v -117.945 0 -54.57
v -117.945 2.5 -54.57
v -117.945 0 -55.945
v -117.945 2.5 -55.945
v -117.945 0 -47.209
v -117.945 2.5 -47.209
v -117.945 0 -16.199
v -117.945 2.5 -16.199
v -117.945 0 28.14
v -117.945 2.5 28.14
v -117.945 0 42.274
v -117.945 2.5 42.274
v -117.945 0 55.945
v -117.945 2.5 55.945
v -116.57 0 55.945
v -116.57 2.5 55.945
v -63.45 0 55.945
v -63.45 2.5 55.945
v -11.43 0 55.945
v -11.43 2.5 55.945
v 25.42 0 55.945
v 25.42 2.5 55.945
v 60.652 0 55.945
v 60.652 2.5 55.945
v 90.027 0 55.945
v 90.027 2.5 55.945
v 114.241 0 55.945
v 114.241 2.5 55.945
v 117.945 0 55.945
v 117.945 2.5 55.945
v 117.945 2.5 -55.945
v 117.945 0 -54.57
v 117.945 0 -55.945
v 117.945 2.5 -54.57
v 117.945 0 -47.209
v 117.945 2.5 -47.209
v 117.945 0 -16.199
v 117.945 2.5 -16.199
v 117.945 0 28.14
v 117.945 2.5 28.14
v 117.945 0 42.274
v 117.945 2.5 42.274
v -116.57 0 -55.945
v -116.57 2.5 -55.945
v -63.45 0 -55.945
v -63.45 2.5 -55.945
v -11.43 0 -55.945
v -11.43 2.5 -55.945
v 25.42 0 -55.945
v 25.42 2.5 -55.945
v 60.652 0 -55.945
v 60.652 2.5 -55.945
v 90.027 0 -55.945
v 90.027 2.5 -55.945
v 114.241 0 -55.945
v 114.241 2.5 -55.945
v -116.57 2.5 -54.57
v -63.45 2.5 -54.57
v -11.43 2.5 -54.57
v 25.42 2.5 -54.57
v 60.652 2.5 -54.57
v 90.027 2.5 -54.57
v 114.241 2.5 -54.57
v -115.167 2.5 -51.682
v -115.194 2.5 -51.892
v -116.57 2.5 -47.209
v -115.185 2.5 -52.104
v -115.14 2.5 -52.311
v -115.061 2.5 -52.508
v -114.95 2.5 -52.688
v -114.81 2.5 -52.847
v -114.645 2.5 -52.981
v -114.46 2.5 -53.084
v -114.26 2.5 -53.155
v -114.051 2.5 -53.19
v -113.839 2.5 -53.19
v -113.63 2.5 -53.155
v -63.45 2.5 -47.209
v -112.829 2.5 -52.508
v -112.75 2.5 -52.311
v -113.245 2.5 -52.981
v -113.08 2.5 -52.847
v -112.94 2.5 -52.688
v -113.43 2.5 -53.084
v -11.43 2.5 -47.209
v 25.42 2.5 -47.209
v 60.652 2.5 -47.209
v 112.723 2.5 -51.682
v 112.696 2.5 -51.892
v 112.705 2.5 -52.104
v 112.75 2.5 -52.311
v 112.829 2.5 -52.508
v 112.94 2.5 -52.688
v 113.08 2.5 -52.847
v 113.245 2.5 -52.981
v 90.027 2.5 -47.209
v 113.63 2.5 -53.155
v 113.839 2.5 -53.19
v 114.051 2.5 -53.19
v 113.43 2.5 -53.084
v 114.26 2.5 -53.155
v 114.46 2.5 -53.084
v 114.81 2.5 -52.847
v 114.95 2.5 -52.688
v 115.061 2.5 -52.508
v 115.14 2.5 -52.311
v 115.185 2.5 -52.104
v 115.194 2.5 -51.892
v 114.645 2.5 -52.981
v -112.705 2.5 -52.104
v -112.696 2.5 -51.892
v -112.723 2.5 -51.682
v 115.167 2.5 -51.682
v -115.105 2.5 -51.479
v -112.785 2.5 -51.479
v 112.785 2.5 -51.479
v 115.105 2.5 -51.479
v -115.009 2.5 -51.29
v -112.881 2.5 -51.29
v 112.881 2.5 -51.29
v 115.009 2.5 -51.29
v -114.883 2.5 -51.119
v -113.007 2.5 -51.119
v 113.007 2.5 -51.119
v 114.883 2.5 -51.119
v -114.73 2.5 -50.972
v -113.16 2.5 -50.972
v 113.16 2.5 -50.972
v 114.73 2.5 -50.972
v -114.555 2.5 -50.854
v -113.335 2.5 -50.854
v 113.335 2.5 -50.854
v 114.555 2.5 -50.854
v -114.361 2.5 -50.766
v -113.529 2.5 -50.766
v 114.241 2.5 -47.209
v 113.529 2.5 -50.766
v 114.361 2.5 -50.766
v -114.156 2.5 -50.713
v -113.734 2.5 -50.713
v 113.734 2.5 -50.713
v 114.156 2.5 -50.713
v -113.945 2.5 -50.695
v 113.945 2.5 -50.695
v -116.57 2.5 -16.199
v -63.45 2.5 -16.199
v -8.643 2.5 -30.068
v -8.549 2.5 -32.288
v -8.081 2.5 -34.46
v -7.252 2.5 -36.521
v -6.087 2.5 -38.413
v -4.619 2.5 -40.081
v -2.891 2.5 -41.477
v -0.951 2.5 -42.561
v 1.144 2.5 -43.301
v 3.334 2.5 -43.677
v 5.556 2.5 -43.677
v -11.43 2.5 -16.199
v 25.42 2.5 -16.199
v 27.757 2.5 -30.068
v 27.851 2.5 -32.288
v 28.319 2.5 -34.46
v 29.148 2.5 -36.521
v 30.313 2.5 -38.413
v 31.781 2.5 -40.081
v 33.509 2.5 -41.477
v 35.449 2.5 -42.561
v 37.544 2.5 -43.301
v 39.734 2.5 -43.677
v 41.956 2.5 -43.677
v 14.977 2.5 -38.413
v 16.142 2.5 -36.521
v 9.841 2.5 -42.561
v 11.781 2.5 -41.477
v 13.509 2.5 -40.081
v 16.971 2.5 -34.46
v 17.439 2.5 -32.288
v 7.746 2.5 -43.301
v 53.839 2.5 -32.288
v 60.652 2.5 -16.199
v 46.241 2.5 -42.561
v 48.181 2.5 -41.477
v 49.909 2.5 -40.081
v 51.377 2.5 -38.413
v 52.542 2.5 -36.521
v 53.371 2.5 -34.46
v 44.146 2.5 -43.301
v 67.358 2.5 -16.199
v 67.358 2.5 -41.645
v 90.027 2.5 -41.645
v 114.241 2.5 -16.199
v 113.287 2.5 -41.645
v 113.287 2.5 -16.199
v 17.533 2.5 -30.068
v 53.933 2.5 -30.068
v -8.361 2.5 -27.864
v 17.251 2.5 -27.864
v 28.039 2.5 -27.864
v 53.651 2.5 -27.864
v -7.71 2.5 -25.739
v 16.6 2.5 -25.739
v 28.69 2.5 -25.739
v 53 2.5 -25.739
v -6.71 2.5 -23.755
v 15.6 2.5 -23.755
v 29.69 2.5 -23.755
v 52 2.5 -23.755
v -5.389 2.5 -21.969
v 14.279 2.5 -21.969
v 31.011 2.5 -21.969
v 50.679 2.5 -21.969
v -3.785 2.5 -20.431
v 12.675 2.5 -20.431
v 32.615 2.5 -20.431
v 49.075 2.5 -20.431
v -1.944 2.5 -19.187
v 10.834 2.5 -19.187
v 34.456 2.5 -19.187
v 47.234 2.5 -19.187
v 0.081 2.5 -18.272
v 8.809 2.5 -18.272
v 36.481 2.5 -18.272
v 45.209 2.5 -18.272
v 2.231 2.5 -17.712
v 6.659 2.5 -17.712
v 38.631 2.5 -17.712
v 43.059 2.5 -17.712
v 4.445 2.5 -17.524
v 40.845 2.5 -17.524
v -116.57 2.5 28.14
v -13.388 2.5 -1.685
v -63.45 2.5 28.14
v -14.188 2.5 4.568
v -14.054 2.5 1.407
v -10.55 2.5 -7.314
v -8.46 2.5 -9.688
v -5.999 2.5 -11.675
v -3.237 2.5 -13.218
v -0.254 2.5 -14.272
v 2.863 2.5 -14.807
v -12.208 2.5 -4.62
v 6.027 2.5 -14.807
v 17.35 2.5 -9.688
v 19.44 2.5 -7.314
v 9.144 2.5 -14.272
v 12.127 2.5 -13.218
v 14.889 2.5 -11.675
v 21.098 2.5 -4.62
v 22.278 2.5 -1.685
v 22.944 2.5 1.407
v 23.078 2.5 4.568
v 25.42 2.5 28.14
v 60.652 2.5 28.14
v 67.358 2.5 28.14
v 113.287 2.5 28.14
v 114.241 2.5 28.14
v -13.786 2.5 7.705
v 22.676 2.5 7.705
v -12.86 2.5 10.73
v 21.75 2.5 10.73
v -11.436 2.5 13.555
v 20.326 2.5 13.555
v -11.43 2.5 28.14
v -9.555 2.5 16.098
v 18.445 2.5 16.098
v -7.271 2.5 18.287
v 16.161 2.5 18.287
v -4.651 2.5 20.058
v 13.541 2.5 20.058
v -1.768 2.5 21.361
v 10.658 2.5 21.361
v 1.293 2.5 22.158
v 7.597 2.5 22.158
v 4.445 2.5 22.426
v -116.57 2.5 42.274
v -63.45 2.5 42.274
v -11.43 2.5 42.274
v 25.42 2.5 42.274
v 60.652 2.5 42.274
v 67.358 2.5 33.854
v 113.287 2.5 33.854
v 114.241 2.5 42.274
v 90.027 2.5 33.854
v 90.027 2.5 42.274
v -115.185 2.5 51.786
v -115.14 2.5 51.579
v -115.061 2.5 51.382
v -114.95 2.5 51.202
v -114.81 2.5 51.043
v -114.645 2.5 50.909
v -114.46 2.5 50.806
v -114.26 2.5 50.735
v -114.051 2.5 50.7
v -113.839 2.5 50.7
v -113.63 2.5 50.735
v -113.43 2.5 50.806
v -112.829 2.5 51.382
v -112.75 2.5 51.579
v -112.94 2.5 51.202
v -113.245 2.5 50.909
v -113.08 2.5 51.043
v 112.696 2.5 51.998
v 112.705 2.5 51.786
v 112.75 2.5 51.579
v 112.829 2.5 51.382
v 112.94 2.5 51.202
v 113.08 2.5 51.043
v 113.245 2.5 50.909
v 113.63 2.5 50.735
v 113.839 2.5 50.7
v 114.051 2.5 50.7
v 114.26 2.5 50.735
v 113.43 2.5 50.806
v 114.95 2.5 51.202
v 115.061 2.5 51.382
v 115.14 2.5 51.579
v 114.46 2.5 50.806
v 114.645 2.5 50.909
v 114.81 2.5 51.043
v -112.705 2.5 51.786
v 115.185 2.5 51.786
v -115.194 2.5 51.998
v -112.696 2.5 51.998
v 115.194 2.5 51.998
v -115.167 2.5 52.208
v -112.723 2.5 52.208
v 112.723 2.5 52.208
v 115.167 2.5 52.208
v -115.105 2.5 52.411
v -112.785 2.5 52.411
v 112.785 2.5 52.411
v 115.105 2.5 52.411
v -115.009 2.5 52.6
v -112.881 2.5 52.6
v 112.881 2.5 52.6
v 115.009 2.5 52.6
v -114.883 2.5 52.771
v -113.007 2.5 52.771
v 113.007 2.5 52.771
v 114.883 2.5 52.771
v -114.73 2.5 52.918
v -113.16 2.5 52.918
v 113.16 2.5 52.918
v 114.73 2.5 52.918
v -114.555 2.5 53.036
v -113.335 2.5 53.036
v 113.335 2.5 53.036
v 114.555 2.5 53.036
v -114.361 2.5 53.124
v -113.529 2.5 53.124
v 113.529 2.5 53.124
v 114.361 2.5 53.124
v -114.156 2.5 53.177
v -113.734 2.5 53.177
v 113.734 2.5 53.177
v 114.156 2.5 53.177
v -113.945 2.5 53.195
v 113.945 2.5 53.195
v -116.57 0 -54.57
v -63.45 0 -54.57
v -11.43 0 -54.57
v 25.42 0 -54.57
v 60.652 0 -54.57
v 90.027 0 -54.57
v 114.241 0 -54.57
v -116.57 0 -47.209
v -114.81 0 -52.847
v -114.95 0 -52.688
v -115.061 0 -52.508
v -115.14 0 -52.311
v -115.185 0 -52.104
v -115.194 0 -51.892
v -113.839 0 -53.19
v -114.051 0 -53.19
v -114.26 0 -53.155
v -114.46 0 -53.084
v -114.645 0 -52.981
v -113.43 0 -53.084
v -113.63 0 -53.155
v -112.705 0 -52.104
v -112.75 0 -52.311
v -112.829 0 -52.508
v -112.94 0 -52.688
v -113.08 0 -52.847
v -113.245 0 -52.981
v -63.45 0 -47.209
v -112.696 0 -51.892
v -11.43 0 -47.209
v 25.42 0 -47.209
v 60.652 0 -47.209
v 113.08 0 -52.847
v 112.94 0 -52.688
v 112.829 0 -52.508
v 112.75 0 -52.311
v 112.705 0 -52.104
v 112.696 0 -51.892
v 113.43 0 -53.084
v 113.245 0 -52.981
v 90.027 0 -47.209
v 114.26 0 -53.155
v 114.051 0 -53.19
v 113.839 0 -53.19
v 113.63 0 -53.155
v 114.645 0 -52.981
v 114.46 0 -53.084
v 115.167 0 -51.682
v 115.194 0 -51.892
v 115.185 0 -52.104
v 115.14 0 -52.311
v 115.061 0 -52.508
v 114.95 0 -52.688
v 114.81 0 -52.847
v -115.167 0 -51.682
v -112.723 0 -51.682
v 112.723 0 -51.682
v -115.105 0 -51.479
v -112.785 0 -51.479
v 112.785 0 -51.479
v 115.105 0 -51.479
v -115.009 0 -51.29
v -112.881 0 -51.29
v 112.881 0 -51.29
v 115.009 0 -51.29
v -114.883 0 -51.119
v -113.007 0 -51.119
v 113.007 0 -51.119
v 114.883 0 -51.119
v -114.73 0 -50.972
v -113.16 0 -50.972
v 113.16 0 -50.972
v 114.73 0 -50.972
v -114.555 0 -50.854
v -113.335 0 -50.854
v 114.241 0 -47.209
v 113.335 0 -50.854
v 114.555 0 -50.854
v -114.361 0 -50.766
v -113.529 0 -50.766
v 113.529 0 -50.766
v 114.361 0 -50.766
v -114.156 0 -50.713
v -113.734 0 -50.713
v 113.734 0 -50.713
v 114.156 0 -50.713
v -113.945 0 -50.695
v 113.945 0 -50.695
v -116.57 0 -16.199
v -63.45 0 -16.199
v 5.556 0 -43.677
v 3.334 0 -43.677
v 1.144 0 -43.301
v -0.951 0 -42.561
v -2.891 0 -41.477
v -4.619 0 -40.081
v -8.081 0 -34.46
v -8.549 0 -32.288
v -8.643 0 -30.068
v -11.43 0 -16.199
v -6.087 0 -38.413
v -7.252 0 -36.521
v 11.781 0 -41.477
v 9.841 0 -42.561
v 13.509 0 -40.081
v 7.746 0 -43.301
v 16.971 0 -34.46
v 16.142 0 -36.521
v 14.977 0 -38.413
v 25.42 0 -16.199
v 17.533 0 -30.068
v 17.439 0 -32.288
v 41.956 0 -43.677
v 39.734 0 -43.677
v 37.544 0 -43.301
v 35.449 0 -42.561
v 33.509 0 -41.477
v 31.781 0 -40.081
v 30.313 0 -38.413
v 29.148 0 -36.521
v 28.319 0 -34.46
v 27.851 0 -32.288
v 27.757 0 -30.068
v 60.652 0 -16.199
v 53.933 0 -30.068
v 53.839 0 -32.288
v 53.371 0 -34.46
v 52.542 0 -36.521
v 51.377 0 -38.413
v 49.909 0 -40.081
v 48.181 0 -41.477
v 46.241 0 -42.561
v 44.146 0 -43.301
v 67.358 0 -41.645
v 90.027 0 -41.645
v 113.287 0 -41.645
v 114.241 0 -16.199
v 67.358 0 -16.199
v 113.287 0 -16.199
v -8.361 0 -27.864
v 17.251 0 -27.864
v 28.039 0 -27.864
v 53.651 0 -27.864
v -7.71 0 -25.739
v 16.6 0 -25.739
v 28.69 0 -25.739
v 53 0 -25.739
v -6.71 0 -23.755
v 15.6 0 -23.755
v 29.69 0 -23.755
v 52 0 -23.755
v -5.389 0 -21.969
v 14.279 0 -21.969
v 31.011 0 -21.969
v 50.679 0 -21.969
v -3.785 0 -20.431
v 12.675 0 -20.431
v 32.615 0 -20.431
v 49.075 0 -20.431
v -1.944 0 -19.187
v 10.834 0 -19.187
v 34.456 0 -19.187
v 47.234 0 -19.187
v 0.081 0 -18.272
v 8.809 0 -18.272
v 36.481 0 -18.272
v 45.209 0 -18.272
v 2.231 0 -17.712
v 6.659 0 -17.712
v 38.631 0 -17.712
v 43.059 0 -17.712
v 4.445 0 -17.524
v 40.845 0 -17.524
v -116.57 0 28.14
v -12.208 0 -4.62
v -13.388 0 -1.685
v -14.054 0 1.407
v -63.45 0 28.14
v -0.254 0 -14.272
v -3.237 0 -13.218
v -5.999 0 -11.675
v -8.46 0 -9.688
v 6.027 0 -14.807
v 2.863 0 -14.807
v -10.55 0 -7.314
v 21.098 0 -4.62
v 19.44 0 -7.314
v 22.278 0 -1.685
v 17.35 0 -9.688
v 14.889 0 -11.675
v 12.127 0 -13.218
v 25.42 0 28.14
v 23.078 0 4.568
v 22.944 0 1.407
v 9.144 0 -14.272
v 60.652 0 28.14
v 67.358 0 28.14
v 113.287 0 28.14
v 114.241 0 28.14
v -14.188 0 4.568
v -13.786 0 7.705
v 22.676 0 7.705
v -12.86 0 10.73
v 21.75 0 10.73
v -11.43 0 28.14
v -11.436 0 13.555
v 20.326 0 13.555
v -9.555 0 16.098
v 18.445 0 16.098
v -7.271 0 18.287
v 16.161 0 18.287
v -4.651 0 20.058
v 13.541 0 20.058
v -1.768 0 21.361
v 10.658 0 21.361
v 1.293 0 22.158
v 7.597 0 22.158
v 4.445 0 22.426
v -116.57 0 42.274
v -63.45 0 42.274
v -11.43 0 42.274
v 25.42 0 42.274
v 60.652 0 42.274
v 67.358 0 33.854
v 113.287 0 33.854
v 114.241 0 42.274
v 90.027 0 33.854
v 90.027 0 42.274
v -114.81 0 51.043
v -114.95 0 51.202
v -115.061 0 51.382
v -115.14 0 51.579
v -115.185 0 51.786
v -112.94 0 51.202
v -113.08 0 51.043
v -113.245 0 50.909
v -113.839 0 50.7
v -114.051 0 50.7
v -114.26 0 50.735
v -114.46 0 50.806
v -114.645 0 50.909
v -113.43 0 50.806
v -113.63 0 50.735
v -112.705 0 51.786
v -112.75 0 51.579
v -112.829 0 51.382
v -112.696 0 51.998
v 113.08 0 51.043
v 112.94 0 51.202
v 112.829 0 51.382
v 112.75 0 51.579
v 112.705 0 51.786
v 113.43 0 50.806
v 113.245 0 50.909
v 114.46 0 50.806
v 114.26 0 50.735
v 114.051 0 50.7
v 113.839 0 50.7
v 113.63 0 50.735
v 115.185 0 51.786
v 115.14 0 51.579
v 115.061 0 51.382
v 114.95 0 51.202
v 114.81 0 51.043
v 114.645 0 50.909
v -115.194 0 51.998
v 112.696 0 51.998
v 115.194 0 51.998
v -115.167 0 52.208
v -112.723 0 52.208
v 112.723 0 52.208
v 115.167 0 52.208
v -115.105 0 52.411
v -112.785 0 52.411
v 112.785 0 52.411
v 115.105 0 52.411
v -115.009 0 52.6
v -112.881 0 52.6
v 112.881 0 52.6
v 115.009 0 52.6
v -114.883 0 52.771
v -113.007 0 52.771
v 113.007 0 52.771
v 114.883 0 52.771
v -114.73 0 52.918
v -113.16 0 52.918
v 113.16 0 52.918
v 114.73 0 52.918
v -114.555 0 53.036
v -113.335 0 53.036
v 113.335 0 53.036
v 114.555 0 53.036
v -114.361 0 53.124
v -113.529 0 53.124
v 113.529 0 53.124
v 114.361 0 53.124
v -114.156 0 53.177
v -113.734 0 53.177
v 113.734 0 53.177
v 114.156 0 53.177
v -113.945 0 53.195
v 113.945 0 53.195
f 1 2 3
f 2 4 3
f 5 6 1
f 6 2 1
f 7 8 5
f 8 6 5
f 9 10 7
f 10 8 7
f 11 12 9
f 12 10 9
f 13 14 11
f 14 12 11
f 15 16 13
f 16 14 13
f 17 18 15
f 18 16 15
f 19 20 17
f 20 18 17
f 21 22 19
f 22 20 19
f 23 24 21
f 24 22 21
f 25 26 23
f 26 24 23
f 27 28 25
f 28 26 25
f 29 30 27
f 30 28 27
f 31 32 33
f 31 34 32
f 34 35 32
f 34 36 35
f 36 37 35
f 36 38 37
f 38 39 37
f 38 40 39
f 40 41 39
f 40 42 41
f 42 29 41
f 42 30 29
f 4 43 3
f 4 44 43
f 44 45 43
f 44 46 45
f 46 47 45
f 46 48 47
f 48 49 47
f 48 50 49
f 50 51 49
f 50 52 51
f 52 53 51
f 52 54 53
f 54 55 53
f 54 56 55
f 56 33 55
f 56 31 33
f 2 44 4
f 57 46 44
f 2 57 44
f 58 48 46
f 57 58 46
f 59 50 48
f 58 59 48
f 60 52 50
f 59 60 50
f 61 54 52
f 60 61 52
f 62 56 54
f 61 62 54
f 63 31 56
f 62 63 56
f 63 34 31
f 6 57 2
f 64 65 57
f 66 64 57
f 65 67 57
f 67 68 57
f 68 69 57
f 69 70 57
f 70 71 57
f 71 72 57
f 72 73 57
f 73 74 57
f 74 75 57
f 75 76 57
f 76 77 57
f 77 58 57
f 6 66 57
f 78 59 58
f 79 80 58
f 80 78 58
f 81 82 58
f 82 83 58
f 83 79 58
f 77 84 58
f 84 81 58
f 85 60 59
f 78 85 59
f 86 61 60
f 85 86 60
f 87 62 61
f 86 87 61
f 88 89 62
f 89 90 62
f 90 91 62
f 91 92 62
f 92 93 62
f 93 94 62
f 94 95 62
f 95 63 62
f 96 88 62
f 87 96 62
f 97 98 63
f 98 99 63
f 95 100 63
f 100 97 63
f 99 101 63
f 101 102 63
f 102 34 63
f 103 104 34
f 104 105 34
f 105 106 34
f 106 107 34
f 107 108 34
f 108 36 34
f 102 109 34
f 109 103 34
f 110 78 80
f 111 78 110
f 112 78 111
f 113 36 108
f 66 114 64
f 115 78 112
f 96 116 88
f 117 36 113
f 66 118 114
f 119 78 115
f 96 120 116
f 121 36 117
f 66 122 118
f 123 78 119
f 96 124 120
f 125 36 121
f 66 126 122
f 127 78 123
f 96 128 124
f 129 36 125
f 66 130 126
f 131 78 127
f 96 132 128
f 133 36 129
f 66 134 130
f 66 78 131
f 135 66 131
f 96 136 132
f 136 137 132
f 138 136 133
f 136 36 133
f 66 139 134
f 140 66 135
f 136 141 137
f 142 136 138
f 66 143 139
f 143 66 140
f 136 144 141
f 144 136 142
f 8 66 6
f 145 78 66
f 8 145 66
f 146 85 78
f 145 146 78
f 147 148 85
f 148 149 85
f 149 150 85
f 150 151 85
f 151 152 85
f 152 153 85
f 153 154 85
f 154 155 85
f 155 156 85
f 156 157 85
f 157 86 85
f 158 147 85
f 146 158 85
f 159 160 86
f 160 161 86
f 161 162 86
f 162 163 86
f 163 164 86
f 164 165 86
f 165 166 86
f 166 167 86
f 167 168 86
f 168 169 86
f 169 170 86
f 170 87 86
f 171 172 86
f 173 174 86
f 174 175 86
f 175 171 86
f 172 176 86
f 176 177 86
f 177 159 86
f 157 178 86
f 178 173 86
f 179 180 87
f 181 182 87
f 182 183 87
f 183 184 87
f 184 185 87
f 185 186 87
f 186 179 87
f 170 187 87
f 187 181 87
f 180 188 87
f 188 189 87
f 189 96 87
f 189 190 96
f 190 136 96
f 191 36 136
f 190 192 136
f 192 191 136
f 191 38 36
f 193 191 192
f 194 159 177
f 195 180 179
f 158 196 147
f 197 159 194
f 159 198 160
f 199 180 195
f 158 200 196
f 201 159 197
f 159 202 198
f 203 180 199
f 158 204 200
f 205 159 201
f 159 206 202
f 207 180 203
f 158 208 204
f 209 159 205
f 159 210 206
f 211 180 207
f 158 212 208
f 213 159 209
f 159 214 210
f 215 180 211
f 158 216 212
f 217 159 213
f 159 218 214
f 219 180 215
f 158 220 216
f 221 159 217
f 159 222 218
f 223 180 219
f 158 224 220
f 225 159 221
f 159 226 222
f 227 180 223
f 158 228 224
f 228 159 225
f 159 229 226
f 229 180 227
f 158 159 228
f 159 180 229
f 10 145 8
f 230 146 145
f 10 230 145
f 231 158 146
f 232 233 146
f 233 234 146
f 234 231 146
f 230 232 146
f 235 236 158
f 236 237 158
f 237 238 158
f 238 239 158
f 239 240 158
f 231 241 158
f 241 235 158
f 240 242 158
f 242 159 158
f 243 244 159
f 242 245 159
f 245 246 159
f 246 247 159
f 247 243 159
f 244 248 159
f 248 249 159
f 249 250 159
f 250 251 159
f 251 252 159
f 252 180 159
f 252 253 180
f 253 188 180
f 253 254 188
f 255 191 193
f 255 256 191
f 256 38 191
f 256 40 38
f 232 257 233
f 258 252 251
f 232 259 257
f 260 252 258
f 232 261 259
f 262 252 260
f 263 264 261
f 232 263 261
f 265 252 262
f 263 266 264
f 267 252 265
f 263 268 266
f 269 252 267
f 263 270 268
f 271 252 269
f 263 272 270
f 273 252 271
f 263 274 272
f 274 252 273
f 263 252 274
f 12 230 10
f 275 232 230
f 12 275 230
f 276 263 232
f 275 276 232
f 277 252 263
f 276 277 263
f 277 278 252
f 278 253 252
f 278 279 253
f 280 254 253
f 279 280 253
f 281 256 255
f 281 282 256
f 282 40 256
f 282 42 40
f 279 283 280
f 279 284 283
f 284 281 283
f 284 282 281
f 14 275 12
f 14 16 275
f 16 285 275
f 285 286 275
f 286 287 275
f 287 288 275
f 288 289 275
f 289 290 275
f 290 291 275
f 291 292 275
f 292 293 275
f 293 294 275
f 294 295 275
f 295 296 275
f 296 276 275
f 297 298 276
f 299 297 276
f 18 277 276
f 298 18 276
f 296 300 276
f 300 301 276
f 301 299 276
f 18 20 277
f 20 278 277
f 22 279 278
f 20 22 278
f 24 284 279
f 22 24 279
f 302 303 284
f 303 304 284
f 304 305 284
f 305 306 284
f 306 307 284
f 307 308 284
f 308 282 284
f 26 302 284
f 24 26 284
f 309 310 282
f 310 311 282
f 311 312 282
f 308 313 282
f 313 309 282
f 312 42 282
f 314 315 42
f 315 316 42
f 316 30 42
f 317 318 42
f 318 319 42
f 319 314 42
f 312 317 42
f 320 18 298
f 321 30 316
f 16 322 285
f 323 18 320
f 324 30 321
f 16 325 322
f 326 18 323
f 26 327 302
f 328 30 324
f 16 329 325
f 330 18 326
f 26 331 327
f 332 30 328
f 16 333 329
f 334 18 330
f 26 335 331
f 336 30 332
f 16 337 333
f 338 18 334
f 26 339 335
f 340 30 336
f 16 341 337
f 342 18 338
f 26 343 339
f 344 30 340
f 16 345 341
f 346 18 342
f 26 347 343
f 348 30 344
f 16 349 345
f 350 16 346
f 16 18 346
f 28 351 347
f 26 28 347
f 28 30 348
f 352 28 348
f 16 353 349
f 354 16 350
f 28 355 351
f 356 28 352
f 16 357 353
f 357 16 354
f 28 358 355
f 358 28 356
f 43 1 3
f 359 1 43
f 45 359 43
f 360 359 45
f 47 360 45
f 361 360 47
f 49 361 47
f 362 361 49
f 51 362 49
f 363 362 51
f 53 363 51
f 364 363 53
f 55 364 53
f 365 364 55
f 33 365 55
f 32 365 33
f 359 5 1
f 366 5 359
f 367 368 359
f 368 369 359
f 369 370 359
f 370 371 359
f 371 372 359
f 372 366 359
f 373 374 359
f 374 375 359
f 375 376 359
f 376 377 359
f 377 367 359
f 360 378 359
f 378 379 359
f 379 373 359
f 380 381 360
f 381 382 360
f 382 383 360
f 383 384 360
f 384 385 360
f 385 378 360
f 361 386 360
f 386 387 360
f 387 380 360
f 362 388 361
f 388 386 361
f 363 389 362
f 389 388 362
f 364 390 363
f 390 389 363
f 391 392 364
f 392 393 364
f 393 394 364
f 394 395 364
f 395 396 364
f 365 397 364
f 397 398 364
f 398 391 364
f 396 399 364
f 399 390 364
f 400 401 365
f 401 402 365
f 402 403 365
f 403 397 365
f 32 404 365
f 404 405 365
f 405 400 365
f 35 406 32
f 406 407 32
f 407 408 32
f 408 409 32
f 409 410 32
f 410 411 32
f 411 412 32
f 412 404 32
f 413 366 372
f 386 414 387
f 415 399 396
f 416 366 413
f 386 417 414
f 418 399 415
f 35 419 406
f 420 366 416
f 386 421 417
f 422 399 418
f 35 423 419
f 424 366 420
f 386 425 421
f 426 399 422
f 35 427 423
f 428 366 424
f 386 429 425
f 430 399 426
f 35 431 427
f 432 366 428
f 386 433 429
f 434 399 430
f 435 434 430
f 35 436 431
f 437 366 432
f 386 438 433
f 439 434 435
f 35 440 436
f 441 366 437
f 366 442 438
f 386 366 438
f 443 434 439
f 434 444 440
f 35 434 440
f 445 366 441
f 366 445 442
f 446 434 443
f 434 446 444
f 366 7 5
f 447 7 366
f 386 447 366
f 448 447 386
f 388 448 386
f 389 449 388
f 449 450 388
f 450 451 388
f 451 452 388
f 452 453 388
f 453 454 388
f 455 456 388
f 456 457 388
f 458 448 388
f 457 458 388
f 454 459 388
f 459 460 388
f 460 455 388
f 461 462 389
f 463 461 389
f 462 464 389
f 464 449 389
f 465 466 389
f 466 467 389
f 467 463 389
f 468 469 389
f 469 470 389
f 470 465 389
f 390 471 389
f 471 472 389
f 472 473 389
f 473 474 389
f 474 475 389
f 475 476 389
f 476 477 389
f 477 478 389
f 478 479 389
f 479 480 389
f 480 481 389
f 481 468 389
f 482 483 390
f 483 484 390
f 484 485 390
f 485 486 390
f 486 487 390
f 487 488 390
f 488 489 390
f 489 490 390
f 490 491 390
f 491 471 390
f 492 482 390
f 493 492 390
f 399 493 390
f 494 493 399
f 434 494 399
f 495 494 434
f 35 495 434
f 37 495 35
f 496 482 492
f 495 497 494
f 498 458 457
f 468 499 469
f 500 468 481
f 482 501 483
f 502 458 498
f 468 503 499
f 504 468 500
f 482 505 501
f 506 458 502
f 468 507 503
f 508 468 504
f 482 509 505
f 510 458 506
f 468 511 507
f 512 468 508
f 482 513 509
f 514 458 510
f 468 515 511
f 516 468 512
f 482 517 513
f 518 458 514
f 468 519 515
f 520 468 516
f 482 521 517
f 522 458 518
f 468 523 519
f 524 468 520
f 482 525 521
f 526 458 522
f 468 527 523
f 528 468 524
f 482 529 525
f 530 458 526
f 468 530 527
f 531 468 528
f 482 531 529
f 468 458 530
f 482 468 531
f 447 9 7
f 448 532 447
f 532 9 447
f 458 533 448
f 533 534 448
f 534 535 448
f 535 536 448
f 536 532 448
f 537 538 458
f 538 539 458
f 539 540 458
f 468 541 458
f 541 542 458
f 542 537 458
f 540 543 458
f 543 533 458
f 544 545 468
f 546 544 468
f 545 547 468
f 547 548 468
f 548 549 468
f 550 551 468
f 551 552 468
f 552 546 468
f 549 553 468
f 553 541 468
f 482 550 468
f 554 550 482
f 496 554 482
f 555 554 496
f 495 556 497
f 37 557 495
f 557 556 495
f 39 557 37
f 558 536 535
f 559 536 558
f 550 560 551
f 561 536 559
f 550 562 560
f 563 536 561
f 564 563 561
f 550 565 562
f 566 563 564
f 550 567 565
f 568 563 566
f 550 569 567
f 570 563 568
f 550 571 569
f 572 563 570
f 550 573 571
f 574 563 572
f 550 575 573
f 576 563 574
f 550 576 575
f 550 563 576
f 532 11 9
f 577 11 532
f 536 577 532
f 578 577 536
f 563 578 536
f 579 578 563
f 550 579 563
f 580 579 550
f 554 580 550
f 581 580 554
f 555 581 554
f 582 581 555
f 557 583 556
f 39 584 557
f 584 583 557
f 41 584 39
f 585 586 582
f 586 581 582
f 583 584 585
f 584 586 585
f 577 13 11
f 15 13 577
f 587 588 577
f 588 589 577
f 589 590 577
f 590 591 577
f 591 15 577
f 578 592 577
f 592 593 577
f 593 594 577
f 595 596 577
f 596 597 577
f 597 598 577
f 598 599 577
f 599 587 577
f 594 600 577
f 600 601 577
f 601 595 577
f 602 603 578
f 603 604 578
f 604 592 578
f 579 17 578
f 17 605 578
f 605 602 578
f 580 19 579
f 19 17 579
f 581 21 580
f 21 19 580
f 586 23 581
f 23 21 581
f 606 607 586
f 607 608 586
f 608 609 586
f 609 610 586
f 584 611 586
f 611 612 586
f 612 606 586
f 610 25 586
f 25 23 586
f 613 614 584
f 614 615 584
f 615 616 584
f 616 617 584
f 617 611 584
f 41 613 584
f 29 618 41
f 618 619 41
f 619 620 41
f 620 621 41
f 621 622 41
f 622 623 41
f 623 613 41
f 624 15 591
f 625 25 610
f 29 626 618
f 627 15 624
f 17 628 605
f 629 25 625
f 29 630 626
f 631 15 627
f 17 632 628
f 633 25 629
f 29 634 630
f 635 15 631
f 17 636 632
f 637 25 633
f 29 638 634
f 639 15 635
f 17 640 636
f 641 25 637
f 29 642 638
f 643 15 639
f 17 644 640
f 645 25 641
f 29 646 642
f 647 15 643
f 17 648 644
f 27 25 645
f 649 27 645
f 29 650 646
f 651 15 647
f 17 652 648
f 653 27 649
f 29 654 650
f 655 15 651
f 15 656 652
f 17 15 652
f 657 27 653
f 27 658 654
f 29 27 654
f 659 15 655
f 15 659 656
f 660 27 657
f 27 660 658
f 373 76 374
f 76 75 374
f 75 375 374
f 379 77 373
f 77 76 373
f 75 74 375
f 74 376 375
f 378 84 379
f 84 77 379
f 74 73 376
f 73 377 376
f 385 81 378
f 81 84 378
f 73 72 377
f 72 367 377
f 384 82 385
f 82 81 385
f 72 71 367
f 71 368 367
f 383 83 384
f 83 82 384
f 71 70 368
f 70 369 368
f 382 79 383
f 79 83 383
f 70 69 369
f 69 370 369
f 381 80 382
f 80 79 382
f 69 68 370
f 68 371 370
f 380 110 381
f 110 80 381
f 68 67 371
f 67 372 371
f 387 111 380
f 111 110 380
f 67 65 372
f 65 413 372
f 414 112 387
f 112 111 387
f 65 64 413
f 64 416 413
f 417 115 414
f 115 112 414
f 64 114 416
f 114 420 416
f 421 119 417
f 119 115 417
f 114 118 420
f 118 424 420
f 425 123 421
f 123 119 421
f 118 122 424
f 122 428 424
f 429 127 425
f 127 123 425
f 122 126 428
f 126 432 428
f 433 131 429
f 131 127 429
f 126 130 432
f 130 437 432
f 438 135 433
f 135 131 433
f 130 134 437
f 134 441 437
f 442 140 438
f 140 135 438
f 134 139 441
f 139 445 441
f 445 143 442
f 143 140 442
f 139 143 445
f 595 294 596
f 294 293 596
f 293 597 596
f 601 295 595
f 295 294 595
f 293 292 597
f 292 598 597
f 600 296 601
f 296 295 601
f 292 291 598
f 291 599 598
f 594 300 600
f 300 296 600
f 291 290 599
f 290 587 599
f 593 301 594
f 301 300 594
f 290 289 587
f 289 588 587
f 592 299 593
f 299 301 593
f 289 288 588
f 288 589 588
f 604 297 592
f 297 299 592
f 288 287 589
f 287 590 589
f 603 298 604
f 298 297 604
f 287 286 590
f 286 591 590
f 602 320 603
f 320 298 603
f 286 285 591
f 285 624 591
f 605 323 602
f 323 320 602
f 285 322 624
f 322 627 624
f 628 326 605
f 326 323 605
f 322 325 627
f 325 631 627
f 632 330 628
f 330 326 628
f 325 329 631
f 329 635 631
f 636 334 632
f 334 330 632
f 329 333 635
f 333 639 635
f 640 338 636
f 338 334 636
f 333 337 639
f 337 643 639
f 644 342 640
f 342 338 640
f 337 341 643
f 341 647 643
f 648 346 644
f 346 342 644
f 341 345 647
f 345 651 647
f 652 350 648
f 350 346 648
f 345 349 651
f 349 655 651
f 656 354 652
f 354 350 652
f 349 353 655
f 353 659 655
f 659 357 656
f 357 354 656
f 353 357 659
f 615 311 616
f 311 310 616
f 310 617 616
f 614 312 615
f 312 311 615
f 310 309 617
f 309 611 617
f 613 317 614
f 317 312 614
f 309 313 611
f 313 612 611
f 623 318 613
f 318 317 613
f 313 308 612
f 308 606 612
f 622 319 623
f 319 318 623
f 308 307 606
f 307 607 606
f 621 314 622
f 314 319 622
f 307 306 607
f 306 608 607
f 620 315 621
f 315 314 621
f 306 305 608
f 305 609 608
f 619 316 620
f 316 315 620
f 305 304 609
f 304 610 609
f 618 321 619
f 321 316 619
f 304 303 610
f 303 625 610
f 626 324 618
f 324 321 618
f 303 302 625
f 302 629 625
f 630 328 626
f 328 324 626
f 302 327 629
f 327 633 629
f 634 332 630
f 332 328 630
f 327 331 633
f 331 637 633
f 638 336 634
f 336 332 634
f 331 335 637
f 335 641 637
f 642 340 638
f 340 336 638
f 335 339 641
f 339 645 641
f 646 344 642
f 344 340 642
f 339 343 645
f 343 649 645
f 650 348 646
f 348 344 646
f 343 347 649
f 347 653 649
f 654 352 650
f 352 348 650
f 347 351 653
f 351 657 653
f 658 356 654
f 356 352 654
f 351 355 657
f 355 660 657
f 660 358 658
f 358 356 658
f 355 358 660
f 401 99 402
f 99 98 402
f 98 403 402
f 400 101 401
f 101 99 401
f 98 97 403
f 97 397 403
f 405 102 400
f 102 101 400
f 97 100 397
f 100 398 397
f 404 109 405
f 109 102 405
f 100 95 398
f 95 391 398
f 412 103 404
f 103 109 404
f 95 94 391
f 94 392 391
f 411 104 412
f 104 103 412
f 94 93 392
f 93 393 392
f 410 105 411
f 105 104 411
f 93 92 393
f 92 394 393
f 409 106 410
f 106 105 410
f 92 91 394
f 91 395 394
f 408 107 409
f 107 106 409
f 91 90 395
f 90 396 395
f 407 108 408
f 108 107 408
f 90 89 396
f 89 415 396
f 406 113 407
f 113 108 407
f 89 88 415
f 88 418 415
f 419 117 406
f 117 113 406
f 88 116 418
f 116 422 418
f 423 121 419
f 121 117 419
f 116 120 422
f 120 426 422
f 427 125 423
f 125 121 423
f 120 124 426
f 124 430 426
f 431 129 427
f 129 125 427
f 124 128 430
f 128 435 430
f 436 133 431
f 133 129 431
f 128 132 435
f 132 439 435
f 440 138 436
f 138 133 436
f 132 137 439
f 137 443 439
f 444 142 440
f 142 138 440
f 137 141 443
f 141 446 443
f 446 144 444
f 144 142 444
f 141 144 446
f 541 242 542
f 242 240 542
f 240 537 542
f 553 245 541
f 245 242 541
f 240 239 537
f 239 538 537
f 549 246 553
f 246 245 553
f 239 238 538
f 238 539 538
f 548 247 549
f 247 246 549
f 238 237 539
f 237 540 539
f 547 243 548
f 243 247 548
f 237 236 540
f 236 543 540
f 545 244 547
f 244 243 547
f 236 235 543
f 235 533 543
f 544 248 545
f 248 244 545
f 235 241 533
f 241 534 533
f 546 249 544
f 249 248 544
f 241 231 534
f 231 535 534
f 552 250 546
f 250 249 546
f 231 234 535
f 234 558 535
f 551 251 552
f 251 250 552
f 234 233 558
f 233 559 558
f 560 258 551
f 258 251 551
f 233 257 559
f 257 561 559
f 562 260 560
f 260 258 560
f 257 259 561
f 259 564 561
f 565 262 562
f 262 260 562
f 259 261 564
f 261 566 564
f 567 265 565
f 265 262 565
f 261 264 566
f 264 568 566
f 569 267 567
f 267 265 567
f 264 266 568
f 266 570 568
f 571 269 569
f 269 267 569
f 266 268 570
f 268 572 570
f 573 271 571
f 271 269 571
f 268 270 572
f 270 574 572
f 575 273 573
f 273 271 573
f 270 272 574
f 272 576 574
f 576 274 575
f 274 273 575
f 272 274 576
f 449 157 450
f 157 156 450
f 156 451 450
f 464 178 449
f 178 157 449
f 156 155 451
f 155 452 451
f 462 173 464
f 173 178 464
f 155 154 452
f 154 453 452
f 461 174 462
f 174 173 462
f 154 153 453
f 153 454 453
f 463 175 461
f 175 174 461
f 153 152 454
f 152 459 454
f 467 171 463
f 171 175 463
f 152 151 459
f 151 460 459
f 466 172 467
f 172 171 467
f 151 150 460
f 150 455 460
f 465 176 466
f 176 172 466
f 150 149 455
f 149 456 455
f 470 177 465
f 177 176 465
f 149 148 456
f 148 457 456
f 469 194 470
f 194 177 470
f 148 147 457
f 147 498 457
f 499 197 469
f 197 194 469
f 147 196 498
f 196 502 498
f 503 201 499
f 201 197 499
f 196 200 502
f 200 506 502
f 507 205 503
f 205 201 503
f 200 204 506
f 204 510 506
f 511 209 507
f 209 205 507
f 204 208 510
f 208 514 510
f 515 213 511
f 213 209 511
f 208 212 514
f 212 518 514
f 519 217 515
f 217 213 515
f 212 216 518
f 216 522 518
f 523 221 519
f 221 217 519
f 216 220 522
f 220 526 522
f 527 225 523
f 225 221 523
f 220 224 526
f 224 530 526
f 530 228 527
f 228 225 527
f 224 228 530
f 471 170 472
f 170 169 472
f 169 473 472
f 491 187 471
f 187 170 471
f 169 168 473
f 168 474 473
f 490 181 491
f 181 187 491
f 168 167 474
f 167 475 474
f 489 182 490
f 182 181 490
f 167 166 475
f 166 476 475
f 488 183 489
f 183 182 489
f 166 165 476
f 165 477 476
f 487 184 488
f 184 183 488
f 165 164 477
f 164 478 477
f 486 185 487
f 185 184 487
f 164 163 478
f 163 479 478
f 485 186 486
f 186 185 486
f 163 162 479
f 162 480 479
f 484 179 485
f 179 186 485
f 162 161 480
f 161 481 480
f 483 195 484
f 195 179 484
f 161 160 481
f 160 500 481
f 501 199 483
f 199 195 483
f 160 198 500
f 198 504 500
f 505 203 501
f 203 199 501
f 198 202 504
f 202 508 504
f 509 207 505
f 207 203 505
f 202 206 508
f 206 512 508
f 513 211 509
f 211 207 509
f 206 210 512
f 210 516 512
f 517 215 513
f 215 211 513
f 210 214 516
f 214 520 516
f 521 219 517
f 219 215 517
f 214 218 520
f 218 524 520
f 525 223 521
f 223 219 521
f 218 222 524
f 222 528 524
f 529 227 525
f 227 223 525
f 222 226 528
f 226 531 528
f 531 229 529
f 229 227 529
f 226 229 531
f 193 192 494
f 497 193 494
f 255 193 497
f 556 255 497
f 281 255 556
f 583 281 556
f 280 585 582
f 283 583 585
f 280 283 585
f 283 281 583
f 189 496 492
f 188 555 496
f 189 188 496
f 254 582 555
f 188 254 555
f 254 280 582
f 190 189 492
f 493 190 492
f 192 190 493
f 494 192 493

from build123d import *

# Parameters (mm, degrees)
SKETCH2_W               = 235.89
SKETCH2_H               = 111.89
BOSS_EXTRUDE1_DEPTH     = 2.5
SKETCH3_R               = 1.25
CUT_EXTRUDE1_DEPTH      = 131.56460489
CUT_EXTRUDE2_DEPTH      = 131.56460489
CUT_EXTRUDE2_DEPTH_BACK = 131.56460489
SKETCH4_R               = 13.1
SKETCH4_R_2             = 18.65
SKETCH4_W               = 45.9288
SKETCH4_H               = 75.4987


with BuildPart() as part:
    # Sketch2 → Boss-Extrude1 (new body)
    with BuildSketch(Plane(origin=(0, 0, 0), x_dir=(1, 0, 0), z_dir=(0, 1, 0))):
        Rectangle(SKETCH2_W, SKETCH2_H)
    extrude(amount=BOSS_EXTRUDE1_DEPTH)

    # Sketch3 → Cut-Extrude1 (cut, through all)
    with BuildSketch(Plane(origin=(0, 2.5, 0), x_dir=(1, 0, 0), z_dir=(0, 1, 0))):
        with Locations(Location((-113.945, 51.945, 0), (0, 0, 270))):
            Circle(SKETCH3_R)
        with Locations(Location((-113.945, -51.945, 0), (0, 0, 270))):
            Circle(SKETCH3_R)
        with Locations(Location((113.945, -51.945, 0), (0, 0, 270))):
            Circle(SKETCH3_R)
        with Locations(Location((113.945, 51.945, 0), (0, 0, 270))):
            Circle(SKETCH3_R)
    extrude(amount=-CUT_EXTRUDE1_DEPTH, mode=Mode.SUBTRACT)

    # Sketch4 → Cut-Extrude2 (cut, two sides: drawn at the far end of the back side and taken through both)
    with BuildSketch(Plane(origin=(0, 2.5, 0), x_dir=(1, 0, 0), z_dir=(0, 1, 0)).offset(-CUT_EXTRUDE2_DEPTH_BACK)):
        with Locations(Location((40.845, 30.6237, 0), (0, 0, 270))):
            Circle(SKETCH4_R)
        with Locations(Location((4.445, 30.6237, 0), (0, 0, 270))):
            Circle(SKETCH4_R)
        with Locations(Location((4.445, -3.7763, 0), (0, 0, 270))):
            Circle(SKETCH4_R_2)
        with Locations((90.3227, 3.89565)):
            Rectangle(SKETCH4_W, SKETCH4_H)
    extrude(amount=CUT_EXTRUDE2_DEPTH + CUT_EXTRUDE2_DEPTH_BACK, mode=Mode.SUBTRACT)


solid = part.part
